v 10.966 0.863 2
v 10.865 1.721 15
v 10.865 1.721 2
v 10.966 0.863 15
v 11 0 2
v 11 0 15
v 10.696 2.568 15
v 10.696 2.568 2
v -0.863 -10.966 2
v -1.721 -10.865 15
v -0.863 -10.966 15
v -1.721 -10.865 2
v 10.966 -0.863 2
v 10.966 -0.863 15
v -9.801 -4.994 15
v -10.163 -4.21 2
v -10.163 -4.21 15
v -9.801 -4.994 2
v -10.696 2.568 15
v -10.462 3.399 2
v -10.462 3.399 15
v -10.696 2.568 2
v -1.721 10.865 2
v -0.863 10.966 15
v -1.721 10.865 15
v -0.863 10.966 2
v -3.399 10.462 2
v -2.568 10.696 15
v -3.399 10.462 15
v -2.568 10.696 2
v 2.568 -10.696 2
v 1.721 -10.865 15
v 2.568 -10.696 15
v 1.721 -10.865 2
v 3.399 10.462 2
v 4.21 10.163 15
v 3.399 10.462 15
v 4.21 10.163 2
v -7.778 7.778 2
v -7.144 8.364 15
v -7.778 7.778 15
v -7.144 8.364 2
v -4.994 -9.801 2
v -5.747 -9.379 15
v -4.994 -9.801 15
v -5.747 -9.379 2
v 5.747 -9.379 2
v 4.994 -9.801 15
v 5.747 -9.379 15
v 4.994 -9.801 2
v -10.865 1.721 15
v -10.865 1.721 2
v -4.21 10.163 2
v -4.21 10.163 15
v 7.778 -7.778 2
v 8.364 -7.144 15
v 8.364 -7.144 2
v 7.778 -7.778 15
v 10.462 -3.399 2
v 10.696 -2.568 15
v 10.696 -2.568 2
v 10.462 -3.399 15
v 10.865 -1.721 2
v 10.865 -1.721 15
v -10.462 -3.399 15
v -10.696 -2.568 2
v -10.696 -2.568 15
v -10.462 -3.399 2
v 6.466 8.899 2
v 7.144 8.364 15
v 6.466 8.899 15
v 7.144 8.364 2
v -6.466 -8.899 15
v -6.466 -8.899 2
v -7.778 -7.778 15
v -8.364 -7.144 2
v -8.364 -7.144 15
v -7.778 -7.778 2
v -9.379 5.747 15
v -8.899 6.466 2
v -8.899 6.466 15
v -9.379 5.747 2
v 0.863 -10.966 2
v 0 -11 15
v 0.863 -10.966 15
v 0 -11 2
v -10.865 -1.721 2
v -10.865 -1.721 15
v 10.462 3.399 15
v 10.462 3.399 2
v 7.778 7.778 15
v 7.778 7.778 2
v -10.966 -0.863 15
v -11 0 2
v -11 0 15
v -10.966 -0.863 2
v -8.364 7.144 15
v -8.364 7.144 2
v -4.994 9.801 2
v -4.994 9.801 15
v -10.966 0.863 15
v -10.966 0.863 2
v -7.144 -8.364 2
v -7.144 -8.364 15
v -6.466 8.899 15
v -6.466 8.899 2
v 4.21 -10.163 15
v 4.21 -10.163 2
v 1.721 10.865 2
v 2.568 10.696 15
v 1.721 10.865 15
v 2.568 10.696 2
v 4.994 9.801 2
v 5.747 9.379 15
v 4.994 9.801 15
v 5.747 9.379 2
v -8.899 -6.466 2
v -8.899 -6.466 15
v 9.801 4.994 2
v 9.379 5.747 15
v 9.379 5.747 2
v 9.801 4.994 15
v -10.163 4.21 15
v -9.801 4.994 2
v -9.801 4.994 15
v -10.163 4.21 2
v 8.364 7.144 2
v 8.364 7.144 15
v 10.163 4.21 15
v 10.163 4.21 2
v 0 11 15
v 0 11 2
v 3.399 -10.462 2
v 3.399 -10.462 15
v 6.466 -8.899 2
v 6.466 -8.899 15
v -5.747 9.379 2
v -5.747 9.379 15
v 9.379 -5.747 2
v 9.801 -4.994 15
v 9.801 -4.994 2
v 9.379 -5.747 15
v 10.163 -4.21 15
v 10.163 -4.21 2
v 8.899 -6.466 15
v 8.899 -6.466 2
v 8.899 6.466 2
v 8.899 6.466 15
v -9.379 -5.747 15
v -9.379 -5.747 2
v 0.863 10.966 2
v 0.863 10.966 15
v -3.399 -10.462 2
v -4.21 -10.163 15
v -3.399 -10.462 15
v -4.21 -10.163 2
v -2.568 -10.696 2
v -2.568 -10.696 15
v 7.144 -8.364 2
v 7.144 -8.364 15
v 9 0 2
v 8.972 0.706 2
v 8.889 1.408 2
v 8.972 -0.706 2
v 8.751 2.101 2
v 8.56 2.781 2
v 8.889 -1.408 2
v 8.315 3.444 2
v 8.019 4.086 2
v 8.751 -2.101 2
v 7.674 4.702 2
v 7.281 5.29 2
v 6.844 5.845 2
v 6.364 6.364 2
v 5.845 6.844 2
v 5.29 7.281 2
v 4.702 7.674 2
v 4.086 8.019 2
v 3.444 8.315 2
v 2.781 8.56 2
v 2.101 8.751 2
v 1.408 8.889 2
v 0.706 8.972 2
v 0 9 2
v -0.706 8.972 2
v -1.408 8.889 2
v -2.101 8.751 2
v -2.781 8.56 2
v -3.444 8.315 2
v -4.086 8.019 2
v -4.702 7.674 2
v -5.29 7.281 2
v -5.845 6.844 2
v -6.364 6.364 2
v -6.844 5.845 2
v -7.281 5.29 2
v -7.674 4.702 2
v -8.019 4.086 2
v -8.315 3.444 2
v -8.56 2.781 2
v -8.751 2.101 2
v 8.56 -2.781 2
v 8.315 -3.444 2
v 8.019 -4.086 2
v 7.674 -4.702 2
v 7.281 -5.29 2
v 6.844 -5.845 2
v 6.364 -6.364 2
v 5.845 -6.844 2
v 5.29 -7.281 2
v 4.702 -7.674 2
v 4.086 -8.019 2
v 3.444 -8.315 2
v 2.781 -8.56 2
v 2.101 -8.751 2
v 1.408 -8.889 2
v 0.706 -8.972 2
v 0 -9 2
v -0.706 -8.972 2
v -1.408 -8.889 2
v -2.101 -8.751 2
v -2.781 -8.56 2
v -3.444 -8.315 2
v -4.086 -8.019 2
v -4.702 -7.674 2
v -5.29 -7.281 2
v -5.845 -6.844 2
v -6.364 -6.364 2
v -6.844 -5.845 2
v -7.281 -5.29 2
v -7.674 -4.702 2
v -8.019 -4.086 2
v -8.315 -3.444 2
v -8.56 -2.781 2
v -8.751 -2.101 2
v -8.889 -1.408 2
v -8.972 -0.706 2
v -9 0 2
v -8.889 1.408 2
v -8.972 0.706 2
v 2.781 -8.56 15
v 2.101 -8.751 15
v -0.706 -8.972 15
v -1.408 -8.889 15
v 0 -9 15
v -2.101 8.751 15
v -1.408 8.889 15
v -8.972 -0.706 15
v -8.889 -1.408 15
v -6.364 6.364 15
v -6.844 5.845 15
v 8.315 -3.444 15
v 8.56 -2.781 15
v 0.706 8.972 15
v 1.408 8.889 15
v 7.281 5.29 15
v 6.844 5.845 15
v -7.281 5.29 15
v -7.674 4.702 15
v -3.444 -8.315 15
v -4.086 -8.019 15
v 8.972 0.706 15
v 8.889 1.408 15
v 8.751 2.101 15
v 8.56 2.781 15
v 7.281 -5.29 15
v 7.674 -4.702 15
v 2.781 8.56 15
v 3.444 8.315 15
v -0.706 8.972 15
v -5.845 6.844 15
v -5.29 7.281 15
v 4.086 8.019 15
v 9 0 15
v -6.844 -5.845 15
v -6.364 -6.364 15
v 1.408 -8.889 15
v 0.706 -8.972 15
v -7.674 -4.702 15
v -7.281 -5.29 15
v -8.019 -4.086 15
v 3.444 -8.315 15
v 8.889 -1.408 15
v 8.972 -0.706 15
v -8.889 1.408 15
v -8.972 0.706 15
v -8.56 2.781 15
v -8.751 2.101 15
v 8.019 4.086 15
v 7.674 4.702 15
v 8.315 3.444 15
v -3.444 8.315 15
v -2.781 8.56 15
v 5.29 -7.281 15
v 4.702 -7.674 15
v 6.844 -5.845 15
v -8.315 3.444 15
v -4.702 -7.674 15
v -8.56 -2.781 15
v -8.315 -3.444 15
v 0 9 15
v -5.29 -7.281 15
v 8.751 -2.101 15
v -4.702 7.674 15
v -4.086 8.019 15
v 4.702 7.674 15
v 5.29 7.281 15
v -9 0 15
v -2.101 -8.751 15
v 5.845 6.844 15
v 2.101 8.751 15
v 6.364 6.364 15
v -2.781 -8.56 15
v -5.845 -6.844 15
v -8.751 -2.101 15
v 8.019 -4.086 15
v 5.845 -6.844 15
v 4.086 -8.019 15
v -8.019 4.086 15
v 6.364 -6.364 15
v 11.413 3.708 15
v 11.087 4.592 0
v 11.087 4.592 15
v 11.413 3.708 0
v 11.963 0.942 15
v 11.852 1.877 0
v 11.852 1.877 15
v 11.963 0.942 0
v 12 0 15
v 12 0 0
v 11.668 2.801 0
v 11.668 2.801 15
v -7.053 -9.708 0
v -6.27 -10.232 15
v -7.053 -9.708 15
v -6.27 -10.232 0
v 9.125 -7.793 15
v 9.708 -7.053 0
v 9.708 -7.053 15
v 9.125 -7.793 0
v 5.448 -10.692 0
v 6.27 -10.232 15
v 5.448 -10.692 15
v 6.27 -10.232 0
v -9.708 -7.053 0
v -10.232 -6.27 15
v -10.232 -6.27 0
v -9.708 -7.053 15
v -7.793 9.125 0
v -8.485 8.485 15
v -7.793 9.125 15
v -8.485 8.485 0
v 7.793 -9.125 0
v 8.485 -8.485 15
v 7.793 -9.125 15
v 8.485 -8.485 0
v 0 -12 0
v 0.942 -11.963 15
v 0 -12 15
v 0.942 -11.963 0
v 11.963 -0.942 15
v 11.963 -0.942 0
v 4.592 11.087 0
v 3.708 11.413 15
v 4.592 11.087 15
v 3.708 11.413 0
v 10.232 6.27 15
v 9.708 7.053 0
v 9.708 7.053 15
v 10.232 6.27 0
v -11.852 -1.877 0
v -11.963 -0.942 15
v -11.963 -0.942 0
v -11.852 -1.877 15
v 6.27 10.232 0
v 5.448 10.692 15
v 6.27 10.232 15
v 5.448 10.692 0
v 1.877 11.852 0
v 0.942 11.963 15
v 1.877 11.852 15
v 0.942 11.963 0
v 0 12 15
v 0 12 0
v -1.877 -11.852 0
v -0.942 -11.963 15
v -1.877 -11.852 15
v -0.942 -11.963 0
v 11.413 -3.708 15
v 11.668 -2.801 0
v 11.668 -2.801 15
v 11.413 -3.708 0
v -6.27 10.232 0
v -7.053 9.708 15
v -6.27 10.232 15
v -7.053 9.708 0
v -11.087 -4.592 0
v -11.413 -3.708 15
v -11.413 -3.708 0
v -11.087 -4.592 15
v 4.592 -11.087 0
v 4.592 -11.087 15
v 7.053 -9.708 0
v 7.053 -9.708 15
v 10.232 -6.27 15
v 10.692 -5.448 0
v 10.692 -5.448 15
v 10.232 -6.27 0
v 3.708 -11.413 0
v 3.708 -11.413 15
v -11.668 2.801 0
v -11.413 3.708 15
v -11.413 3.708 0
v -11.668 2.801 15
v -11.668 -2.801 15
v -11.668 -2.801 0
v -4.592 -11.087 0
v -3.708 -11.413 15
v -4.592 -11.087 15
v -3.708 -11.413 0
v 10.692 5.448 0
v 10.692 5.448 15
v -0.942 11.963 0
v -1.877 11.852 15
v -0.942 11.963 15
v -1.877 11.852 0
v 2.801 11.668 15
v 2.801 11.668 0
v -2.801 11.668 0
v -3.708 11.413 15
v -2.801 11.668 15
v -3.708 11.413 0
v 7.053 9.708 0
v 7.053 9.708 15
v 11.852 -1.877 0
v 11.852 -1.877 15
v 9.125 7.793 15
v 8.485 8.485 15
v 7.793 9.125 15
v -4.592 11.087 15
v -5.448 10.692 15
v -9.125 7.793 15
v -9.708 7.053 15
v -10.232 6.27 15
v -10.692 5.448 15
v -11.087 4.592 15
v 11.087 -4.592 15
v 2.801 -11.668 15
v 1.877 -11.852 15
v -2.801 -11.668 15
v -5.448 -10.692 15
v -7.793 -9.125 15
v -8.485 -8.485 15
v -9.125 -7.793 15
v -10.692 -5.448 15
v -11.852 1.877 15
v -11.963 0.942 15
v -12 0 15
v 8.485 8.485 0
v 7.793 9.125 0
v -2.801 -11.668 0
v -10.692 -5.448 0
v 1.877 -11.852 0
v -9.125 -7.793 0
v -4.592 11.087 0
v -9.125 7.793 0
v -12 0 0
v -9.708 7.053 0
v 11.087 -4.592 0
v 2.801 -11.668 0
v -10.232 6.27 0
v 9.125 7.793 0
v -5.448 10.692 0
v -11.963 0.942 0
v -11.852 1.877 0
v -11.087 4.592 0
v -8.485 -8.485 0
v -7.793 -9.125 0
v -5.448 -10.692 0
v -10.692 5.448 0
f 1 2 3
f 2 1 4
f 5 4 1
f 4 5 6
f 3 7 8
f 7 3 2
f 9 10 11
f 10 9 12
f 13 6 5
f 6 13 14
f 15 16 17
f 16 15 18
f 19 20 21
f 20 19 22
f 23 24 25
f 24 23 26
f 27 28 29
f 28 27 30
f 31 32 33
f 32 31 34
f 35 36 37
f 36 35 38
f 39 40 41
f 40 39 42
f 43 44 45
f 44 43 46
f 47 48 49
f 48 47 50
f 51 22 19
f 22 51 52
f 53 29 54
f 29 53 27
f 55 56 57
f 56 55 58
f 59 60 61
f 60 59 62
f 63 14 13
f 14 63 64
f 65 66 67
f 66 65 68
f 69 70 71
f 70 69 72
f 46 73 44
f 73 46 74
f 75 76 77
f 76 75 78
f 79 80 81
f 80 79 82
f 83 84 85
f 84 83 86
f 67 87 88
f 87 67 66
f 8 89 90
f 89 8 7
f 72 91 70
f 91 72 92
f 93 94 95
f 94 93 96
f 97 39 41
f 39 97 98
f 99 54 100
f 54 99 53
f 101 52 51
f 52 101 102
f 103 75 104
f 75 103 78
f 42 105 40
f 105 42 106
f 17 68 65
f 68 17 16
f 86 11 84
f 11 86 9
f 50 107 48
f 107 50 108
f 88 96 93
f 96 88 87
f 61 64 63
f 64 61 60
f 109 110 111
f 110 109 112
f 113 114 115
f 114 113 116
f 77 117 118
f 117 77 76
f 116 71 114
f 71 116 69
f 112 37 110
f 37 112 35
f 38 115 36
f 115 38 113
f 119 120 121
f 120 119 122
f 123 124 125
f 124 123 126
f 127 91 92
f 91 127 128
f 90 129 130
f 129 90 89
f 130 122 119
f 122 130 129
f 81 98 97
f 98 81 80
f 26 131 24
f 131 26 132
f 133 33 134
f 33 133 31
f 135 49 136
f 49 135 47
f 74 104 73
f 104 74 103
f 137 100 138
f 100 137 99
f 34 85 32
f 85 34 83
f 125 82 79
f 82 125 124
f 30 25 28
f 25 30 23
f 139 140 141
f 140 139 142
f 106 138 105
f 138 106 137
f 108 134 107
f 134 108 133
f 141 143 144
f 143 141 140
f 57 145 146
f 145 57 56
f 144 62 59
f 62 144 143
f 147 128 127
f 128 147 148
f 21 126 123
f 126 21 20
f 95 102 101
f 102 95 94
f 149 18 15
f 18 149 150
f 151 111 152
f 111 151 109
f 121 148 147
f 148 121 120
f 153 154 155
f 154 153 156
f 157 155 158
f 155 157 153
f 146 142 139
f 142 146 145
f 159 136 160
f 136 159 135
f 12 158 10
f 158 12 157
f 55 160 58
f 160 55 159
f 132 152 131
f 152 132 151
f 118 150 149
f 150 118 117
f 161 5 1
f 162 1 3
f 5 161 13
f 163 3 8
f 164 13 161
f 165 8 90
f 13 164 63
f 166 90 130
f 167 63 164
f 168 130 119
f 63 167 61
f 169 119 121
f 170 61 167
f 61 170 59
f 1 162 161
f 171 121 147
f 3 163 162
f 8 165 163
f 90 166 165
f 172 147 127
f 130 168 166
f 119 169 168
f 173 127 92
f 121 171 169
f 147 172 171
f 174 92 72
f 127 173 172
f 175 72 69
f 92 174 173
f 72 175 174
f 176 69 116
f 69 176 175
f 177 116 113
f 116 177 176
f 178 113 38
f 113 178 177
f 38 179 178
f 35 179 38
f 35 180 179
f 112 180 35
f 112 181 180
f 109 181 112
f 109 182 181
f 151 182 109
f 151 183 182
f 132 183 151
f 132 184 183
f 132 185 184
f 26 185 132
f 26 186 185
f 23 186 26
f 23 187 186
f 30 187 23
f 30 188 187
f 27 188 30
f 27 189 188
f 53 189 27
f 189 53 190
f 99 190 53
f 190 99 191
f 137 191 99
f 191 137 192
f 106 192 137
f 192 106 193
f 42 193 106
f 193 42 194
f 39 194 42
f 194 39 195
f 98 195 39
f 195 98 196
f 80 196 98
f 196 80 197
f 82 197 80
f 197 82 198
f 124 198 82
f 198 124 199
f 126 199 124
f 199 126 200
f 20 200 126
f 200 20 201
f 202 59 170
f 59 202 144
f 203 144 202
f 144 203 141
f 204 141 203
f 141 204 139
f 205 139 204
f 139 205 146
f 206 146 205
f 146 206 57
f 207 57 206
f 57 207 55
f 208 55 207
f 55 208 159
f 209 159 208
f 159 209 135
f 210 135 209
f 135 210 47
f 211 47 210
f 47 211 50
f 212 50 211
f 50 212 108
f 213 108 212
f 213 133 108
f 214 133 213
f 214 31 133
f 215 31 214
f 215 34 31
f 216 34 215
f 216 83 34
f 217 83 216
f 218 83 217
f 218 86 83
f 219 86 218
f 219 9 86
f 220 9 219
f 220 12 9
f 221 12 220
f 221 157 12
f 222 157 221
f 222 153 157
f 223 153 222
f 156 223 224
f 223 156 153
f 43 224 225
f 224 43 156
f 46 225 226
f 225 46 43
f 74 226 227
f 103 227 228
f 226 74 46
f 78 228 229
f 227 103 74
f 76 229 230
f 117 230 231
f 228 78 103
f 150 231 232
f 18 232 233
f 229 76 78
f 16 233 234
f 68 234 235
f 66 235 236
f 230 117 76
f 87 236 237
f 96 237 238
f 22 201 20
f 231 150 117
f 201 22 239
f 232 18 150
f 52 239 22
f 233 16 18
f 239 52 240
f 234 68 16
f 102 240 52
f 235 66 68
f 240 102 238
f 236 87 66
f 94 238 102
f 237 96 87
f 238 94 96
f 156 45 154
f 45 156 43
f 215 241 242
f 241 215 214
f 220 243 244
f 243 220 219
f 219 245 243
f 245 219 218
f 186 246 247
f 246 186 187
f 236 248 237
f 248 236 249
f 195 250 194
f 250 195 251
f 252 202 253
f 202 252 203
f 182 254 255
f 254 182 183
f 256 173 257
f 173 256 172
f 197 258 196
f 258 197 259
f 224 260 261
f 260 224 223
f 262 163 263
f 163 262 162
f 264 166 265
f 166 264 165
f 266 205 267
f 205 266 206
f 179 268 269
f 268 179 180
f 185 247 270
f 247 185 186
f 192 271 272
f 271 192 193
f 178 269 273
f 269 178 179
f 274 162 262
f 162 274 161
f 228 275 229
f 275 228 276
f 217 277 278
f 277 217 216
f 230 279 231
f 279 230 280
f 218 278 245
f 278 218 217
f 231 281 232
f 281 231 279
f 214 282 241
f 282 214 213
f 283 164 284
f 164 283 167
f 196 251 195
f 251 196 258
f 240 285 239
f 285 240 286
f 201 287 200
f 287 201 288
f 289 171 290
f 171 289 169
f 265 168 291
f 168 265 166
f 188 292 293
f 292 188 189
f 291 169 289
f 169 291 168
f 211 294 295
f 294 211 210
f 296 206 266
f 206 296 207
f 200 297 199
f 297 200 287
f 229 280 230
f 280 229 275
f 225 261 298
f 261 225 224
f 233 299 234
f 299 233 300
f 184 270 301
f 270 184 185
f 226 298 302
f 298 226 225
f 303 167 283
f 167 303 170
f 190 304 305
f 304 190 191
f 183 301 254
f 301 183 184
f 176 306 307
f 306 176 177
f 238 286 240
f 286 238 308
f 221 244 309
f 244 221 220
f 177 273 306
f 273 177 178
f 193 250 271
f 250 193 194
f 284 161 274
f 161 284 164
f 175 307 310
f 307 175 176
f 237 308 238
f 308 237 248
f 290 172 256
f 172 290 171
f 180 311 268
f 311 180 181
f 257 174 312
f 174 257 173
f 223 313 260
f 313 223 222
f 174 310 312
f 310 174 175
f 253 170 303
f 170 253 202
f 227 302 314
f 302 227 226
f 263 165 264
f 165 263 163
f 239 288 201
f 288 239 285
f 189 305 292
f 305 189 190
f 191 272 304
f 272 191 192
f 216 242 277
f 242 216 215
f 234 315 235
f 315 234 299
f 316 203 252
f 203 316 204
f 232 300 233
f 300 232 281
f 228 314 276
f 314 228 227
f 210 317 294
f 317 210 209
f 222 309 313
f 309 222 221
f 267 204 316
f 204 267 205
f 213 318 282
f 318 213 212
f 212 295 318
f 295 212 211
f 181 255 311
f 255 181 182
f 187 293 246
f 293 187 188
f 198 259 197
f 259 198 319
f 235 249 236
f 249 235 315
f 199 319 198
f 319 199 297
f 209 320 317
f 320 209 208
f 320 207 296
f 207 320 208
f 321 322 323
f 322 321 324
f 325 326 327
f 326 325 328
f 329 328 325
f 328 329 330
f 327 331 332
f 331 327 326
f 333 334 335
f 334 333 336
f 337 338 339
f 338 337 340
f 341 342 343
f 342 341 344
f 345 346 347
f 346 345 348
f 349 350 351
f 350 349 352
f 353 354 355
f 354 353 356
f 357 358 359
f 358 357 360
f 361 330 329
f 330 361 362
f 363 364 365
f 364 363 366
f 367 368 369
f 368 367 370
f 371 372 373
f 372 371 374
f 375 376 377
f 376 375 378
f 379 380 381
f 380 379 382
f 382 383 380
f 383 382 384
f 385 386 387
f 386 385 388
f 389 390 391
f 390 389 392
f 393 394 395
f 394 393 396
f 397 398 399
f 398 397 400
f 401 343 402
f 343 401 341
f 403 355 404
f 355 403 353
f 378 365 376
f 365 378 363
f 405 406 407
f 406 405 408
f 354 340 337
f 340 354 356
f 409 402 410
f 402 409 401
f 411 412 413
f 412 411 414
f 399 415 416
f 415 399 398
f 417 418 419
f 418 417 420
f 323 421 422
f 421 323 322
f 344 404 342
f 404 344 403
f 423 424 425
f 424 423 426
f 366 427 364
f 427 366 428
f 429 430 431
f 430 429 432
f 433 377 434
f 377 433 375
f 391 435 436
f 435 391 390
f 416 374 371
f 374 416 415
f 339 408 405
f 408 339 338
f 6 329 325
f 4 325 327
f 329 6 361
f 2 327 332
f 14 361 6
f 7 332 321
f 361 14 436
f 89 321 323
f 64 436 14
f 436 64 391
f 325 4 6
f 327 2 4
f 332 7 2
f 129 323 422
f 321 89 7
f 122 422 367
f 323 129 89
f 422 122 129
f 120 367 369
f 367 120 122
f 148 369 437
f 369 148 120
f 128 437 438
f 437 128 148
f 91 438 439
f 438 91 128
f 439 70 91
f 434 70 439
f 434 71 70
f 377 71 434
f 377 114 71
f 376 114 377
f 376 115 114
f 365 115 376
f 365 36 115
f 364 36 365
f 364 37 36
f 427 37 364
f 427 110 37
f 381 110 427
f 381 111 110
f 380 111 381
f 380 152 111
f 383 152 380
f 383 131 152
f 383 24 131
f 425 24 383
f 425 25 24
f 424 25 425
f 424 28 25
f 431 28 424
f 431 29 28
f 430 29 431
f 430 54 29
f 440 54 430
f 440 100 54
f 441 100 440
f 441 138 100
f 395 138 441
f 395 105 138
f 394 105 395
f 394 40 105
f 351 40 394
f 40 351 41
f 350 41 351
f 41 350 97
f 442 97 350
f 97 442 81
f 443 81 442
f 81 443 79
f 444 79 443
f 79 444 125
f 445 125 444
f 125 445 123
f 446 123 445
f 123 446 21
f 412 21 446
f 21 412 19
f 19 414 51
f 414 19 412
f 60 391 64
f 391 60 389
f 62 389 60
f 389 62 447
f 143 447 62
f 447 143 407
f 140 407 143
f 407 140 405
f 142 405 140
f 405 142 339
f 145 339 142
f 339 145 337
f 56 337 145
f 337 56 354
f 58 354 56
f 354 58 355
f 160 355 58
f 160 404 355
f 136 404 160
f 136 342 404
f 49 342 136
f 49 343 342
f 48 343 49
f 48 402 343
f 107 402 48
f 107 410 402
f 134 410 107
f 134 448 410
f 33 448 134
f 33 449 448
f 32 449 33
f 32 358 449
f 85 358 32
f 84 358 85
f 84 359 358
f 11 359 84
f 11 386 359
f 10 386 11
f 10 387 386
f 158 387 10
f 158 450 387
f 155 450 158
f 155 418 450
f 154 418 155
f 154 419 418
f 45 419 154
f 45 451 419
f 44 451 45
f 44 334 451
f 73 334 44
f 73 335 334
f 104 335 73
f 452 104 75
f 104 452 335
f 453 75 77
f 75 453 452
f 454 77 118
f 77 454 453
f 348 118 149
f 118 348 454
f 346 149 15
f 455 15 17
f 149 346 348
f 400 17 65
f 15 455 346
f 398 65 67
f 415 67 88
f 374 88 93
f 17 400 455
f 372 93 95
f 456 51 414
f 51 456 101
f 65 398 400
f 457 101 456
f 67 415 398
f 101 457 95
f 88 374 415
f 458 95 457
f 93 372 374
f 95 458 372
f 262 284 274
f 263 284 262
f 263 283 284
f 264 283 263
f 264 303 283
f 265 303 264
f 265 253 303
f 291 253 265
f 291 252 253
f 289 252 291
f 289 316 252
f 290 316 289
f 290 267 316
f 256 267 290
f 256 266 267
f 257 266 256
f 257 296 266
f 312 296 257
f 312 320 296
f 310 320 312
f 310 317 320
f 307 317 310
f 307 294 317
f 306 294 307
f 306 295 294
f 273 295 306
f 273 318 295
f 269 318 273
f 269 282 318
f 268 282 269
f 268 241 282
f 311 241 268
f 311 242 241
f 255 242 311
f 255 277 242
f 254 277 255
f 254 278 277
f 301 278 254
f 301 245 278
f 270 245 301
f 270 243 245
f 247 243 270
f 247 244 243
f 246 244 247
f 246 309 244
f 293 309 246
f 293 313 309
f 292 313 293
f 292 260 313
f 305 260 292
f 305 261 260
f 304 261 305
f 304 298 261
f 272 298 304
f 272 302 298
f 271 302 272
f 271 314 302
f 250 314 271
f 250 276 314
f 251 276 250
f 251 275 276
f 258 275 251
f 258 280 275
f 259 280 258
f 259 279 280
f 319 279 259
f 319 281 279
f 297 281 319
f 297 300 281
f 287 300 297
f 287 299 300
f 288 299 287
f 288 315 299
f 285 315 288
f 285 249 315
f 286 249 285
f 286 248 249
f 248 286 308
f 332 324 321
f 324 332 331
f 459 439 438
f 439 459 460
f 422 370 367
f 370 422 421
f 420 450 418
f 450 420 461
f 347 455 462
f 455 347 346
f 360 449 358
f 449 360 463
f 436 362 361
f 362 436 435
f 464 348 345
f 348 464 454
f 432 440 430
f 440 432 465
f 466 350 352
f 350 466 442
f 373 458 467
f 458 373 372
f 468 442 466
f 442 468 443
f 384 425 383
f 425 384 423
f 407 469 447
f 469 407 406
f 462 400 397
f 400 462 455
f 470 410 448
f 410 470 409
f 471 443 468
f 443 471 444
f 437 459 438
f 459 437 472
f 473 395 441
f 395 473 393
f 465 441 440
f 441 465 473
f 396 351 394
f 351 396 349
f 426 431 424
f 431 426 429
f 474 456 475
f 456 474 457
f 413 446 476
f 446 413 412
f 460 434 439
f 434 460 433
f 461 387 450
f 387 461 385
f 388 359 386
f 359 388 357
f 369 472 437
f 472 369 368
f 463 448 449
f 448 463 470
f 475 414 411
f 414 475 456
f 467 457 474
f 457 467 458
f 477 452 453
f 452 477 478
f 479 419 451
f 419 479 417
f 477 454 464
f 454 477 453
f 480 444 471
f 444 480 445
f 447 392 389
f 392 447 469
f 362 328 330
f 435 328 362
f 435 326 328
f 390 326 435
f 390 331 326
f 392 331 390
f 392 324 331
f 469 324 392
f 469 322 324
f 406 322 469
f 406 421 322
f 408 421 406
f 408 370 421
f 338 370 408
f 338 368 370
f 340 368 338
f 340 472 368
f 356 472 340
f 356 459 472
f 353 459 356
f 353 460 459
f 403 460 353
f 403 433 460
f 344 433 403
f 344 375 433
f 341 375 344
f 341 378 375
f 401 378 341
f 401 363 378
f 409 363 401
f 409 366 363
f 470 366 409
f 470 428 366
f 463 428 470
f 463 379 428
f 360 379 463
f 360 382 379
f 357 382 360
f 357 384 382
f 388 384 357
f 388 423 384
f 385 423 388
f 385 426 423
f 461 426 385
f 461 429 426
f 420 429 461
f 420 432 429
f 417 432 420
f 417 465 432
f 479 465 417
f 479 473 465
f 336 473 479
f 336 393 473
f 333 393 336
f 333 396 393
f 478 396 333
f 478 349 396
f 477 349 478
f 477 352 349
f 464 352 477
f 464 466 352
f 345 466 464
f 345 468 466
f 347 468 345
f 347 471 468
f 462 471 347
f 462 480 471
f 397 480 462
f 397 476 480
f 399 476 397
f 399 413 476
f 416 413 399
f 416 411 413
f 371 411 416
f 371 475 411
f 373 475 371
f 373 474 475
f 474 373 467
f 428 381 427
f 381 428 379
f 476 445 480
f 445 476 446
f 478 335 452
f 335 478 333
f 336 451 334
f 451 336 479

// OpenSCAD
shell_width = 2;
inner_dia = 18;
outer_dia = 22;
total_dia = outer_dia + shell_width;
height = 15;
e = 0.001;
$fn=80;
difference(){
cylinder(h = height, d = total_dia);
    translate([0,0,shell_width])
    difference(){
cylinder(h = height+e, d = outer_dia);
cylinder(h = height+e, d = inner_dia);
    }
}
